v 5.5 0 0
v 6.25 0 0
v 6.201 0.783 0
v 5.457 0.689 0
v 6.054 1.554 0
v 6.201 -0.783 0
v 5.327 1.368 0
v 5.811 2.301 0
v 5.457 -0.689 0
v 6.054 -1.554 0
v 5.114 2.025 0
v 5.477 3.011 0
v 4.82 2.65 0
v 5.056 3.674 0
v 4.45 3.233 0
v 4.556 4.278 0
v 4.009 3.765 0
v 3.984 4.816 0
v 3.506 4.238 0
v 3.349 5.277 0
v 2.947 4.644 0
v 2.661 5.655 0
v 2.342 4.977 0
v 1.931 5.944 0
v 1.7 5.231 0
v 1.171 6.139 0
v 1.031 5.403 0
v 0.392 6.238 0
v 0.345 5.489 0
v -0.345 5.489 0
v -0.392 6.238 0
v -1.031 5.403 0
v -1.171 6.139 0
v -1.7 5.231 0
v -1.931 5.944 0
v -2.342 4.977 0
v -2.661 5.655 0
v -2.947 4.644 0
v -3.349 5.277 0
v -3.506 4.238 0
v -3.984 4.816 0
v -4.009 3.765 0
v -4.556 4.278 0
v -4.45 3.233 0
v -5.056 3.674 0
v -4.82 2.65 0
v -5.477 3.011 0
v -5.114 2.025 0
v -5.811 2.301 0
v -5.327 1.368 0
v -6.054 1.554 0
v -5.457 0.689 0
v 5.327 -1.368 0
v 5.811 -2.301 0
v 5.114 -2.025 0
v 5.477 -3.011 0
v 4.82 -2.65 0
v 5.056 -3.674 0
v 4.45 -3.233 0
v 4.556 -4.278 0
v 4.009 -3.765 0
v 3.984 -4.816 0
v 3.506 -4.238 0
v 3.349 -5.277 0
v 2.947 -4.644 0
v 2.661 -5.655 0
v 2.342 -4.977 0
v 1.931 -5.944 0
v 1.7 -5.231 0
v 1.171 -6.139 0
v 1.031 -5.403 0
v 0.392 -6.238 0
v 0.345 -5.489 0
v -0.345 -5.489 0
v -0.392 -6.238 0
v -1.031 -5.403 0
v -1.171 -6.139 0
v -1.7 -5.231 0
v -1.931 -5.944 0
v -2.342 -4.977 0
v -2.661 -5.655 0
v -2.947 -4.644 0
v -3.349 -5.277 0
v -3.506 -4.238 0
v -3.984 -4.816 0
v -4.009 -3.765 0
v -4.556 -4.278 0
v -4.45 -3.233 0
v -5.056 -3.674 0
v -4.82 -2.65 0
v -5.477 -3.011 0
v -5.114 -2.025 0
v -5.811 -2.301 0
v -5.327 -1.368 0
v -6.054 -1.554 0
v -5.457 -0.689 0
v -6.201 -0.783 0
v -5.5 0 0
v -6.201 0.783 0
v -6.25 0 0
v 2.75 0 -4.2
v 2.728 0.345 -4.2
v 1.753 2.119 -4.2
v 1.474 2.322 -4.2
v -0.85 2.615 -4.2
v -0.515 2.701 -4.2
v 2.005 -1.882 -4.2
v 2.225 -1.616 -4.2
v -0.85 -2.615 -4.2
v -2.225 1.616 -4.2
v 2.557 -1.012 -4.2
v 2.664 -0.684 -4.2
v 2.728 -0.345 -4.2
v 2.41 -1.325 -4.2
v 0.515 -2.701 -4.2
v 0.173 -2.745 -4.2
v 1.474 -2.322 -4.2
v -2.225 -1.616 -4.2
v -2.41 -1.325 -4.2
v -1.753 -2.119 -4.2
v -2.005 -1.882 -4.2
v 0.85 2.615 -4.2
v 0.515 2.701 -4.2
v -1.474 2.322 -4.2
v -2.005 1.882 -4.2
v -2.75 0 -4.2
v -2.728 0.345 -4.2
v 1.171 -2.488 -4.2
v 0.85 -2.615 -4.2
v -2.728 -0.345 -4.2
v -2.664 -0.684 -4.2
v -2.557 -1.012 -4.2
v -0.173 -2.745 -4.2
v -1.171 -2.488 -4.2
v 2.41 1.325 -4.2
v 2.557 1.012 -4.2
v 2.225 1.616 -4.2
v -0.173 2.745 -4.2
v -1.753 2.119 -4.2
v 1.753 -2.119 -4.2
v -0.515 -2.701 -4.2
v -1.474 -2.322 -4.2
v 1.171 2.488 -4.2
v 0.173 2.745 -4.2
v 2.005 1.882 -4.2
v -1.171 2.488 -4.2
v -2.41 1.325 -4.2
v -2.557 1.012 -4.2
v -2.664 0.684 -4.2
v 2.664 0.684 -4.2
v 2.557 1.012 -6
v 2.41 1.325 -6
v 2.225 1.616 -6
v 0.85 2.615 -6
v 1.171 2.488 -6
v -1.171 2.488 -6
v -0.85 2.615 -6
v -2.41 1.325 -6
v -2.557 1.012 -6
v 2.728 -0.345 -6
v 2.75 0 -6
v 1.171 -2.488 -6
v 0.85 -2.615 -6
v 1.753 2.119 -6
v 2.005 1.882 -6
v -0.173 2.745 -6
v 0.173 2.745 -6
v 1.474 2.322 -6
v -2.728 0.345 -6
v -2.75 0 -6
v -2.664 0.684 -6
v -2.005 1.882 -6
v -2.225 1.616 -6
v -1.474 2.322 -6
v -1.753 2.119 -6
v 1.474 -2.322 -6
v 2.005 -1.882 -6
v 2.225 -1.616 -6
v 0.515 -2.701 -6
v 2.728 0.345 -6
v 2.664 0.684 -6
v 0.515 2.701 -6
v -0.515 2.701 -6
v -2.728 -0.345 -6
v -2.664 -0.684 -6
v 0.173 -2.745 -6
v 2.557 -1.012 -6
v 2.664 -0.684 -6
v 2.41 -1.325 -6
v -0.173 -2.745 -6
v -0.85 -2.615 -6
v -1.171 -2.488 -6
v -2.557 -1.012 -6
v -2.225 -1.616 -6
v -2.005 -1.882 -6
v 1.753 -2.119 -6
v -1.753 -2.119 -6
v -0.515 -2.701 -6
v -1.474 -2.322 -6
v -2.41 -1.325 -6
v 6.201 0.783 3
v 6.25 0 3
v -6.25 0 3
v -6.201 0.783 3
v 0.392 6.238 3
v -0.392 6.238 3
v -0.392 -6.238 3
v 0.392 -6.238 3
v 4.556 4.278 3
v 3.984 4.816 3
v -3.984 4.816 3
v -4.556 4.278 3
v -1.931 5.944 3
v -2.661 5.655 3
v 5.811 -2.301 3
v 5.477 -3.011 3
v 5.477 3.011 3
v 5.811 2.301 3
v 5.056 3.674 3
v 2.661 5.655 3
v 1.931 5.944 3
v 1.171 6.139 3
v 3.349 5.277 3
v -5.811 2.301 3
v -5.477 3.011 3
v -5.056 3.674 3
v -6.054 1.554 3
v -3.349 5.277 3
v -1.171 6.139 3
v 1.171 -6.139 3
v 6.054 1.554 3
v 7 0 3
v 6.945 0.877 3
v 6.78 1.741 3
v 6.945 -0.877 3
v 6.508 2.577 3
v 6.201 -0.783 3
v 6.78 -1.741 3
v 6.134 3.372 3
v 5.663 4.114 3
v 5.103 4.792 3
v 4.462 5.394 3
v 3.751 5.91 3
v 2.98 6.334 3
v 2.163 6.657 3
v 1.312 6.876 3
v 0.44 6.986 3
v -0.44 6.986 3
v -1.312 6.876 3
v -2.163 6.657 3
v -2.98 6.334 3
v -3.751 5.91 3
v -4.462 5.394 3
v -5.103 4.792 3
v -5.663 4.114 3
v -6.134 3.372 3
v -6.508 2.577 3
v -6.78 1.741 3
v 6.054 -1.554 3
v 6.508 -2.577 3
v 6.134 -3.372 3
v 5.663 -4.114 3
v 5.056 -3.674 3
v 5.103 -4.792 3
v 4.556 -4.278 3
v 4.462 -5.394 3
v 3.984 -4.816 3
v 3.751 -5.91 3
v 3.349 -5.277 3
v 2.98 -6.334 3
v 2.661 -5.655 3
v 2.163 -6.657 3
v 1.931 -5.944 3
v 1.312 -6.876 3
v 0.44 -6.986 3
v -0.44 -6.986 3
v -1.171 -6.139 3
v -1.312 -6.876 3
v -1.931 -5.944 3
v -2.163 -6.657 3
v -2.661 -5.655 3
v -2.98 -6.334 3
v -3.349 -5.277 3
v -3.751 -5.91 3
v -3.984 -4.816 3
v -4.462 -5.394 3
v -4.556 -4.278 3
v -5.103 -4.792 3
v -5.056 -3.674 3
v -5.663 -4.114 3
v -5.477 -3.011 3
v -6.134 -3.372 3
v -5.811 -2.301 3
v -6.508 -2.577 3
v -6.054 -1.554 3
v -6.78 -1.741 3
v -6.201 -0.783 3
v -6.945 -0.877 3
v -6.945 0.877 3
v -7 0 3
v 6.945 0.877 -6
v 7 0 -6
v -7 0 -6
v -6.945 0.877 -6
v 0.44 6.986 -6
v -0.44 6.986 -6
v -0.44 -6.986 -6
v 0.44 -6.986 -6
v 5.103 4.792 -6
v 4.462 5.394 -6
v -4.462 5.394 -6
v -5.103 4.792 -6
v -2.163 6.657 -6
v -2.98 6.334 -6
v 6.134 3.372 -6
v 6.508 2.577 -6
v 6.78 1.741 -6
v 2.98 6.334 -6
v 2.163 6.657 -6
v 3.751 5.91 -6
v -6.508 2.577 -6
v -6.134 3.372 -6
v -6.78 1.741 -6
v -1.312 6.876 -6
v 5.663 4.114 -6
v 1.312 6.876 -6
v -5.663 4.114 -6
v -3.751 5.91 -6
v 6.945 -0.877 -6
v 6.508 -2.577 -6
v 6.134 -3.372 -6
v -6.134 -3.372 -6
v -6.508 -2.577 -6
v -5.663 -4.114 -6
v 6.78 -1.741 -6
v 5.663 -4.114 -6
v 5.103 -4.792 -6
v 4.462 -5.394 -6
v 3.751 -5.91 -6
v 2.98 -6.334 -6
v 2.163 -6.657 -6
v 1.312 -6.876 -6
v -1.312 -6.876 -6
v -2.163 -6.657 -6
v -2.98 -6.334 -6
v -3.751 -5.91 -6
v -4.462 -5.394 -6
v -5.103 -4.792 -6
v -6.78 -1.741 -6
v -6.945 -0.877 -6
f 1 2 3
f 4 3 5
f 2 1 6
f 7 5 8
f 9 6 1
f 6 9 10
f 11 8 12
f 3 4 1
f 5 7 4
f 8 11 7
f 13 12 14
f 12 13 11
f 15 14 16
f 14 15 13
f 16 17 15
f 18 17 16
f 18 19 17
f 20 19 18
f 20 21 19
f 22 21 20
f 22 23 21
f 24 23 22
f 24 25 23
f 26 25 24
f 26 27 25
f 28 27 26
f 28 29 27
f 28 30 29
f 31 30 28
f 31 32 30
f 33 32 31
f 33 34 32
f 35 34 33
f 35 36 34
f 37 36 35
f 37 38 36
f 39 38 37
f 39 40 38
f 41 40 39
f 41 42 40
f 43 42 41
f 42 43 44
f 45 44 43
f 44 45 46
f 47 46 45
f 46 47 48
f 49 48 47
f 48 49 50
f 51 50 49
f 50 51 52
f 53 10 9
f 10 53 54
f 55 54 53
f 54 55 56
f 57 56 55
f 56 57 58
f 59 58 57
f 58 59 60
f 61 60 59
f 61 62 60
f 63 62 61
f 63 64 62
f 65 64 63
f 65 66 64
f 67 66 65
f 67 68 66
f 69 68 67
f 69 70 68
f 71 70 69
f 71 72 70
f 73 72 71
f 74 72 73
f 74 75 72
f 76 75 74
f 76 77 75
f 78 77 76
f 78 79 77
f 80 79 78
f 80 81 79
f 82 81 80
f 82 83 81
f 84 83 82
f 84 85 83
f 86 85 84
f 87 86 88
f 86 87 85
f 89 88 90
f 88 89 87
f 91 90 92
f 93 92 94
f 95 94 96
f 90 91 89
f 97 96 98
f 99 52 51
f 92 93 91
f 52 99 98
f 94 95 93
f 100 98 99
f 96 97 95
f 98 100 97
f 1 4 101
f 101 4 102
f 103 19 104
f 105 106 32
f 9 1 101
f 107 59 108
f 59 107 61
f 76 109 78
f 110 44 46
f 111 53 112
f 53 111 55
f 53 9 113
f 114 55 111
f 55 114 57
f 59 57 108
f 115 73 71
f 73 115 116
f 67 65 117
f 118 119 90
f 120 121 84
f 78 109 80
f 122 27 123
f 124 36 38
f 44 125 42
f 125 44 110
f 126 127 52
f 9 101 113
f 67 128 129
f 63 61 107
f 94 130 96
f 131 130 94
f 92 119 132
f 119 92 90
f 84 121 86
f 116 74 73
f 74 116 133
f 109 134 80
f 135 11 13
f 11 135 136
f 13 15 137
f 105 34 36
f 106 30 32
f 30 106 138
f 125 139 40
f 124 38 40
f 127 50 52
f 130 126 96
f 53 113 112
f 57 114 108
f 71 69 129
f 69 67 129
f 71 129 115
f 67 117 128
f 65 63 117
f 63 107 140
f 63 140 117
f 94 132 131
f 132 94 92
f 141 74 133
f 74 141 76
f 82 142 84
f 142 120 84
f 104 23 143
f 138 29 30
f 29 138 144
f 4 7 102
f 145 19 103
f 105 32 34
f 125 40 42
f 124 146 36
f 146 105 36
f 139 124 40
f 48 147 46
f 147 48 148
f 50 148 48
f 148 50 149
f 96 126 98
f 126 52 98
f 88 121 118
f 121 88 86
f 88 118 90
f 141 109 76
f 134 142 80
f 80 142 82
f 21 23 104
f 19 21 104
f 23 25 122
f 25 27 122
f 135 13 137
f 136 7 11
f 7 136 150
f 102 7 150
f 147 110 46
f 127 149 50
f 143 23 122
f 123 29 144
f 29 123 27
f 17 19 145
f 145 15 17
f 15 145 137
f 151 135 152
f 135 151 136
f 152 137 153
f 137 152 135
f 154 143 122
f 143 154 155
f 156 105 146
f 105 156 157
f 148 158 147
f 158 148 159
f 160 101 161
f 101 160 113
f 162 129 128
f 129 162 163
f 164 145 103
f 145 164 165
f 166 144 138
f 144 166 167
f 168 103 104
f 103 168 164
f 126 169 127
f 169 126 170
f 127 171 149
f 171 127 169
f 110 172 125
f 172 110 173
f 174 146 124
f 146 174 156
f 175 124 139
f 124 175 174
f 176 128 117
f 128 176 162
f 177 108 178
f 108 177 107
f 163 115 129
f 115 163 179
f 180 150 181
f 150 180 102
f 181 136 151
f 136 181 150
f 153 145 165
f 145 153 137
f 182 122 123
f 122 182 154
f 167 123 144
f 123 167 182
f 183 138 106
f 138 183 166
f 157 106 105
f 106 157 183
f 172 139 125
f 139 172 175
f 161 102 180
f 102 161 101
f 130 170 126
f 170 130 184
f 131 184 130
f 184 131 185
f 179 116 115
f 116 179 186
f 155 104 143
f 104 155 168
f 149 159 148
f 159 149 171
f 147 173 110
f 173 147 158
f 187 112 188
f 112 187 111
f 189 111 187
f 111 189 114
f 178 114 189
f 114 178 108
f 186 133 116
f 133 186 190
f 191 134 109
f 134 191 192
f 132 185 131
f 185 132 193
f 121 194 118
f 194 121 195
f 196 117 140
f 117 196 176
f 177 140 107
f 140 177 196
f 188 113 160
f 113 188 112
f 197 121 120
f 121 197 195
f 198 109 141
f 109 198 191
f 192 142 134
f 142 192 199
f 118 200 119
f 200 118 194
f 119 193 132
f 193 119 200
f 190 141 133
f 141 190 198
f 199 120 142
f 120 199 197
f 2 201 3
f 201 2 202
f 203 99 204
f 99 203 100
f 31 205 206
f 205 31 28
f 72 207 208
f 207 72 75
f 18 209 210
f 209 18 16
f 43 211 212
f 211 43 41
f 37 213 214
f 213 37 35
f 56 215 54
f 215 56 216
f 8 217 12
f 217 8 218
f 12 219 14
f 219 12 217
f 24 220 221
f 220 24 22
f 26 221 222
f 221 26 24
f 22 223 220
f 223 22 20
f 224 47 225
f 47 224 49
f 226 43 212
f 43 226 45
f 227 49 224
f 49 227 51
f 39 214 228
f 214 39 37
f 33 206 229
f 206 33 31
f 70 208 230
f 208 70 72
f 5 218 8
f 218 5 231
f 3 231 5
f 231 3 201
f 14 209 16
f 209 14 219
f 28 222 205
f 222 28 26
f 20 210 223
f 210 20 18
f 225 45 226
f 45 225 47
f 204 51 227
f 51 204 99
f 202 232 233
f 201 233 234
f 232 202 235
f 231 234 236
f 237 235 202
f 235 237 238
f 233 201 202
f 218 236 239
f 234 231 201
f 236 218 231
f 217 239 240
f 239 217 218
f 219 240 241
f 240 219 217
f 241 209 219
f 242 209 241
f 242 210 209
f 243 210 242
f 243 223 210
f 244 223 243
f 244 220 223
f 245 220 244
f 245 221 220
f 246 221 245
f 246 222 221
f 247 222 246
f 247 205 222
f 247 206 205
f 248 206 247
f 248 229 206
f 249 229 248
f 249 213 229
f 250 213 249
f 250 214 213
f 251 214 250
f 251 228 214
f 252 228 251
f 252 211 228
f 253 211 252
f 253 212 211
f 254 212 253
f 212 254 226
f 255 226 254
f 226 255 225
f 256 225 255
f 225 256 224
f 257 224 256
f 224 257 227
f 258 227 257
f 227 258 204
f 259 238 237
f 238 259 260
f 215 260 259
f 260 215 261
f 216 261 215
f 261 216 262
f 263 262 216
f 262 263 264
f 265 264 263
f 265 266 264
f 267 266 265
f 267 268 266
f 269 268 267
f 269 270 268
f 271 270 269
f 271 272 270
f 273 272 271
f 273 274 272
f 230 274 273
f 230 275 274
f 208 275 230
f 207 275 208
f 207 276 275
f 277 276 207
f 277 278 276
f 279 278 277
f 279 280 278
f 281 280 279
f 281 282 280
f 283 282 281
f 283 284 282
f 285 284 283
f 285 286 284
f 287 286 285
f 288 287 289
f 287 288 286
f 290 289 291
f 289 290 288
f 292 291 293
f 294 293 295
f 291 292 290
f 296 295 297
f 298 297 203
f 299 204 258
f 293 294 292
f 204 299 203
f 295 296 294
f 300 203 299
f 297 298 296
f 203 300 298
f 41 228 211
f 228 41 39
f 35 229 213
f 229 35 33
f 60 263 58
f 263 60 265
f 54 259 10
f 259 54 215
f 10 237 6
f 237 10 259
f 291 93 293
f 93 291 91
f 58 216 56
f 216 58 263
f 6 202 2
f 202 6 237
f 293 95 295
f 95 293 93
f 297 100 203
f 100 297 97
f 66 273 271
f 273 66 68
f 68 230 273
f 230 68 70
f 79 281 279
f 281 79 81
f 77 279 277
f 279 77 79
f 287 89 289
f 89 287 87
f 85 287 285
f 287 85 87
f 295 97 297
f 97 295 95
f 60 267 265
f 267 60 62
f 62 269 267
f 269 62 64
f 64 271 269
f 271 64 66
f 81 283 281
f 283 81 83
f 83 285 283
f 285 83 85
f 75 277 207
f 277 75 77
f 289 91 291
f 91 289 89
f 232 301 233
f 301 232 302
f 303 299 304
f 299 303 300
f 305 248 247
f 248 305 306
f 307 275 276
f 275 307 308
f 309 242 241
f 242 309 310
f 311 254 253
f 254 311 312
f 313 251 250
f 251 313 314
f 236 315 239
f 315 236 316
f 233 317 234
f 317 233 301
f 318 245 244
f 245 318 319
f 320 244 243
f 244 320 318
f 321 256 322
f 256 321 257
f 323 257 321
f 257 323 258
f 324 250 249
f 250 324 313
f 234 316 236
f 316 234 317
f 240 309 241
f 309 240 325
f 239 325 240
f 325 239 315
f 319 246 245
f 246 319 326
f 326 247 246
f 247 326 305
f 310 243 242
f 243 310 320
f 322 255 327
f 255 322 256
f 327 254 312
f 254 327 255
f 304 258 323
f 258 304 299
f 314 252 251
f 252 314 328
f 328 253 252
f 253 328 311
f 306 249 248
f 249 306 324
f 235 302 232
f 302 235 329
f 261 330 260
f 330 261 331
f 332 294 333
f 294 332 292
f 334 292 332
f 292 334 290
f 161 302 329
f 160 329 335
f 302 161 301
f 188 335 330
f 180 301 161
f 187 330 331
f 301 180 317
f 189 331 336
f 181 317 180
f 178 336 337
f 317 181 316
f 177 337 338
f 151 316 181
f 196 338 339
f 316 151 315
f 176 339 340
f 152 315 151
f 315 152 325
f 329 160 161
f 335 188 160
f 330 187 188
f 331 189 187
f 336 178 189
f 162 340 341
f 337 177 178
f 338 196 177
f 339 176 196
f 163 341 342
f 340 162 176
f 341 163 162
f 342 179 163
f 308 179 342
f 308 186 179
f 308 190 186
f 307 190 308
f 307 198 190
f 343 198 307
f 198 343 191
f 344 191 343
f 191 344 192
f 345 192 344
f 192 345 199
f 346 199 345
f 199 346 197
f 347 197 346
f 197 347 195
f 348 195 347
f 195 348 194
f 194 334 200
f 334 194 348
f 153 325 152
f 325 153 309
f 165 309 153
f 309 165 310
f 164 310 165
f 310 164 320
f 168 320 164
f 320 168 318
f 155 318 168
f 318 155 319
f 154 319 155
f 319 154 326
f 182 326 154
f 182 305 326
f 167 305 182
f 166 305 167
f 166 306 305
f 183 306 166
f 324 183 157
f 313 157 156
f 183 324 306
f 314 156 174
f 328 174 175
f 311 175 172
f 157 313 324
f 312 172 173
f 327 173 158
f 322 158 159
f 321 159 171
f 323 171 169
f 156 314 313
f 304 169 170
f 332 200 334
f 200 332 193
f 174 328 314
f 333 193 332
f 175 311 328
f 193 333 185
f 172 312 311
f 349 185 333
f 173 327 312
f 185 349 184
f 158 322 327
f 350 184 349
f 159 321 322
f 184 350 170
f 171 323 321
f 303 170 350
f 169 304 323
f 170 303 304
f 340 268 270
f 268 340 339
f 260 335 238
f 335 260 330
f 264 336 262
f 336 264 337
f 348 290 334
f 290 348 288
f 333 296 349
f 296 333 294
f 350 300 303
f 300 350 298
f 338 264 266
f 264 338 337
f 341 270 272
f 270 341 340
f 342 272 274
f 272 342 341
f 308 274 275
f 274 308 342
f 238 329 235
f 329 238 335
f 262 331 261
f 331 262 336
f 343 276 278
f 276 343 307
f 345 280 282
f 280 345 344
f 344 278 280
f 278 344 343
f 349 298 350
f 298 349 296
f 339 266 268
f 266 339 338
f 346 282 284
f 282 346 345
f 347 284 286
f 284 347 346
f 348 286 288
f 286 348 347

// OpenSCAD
$fn = 50;

difference() {
	union() {
		translate(v = [0, 0, -6.0]) {
			cylinder(h = 9, r = 7.0);
		}
	}
	union() {
		translate(v = [0, 0, 0]) {
			rotate(a = [0, 0, 0]) {
				difference() {
					union() {
						translate(v = [0, 0, -9.0]) {
							cylinder(h = 9, r = 2.25);
						}
						translate(v = [0, 0, -4.2]) {
							cylinder(h = 4.2, r1 = 2.75, r2 = 5.5);
						}
						translate(v = [0, 0, -9.0]) {
							cylinder(h = 9, r = 2.75);
						}
						translate(v = [0, 0, -9.0]) {
							cylinder(h = 9, r = 2.25);
						}
					}
					union();
				}
			}
		}
		#cylinder(h = 3, r = 6.25);
	}
}
